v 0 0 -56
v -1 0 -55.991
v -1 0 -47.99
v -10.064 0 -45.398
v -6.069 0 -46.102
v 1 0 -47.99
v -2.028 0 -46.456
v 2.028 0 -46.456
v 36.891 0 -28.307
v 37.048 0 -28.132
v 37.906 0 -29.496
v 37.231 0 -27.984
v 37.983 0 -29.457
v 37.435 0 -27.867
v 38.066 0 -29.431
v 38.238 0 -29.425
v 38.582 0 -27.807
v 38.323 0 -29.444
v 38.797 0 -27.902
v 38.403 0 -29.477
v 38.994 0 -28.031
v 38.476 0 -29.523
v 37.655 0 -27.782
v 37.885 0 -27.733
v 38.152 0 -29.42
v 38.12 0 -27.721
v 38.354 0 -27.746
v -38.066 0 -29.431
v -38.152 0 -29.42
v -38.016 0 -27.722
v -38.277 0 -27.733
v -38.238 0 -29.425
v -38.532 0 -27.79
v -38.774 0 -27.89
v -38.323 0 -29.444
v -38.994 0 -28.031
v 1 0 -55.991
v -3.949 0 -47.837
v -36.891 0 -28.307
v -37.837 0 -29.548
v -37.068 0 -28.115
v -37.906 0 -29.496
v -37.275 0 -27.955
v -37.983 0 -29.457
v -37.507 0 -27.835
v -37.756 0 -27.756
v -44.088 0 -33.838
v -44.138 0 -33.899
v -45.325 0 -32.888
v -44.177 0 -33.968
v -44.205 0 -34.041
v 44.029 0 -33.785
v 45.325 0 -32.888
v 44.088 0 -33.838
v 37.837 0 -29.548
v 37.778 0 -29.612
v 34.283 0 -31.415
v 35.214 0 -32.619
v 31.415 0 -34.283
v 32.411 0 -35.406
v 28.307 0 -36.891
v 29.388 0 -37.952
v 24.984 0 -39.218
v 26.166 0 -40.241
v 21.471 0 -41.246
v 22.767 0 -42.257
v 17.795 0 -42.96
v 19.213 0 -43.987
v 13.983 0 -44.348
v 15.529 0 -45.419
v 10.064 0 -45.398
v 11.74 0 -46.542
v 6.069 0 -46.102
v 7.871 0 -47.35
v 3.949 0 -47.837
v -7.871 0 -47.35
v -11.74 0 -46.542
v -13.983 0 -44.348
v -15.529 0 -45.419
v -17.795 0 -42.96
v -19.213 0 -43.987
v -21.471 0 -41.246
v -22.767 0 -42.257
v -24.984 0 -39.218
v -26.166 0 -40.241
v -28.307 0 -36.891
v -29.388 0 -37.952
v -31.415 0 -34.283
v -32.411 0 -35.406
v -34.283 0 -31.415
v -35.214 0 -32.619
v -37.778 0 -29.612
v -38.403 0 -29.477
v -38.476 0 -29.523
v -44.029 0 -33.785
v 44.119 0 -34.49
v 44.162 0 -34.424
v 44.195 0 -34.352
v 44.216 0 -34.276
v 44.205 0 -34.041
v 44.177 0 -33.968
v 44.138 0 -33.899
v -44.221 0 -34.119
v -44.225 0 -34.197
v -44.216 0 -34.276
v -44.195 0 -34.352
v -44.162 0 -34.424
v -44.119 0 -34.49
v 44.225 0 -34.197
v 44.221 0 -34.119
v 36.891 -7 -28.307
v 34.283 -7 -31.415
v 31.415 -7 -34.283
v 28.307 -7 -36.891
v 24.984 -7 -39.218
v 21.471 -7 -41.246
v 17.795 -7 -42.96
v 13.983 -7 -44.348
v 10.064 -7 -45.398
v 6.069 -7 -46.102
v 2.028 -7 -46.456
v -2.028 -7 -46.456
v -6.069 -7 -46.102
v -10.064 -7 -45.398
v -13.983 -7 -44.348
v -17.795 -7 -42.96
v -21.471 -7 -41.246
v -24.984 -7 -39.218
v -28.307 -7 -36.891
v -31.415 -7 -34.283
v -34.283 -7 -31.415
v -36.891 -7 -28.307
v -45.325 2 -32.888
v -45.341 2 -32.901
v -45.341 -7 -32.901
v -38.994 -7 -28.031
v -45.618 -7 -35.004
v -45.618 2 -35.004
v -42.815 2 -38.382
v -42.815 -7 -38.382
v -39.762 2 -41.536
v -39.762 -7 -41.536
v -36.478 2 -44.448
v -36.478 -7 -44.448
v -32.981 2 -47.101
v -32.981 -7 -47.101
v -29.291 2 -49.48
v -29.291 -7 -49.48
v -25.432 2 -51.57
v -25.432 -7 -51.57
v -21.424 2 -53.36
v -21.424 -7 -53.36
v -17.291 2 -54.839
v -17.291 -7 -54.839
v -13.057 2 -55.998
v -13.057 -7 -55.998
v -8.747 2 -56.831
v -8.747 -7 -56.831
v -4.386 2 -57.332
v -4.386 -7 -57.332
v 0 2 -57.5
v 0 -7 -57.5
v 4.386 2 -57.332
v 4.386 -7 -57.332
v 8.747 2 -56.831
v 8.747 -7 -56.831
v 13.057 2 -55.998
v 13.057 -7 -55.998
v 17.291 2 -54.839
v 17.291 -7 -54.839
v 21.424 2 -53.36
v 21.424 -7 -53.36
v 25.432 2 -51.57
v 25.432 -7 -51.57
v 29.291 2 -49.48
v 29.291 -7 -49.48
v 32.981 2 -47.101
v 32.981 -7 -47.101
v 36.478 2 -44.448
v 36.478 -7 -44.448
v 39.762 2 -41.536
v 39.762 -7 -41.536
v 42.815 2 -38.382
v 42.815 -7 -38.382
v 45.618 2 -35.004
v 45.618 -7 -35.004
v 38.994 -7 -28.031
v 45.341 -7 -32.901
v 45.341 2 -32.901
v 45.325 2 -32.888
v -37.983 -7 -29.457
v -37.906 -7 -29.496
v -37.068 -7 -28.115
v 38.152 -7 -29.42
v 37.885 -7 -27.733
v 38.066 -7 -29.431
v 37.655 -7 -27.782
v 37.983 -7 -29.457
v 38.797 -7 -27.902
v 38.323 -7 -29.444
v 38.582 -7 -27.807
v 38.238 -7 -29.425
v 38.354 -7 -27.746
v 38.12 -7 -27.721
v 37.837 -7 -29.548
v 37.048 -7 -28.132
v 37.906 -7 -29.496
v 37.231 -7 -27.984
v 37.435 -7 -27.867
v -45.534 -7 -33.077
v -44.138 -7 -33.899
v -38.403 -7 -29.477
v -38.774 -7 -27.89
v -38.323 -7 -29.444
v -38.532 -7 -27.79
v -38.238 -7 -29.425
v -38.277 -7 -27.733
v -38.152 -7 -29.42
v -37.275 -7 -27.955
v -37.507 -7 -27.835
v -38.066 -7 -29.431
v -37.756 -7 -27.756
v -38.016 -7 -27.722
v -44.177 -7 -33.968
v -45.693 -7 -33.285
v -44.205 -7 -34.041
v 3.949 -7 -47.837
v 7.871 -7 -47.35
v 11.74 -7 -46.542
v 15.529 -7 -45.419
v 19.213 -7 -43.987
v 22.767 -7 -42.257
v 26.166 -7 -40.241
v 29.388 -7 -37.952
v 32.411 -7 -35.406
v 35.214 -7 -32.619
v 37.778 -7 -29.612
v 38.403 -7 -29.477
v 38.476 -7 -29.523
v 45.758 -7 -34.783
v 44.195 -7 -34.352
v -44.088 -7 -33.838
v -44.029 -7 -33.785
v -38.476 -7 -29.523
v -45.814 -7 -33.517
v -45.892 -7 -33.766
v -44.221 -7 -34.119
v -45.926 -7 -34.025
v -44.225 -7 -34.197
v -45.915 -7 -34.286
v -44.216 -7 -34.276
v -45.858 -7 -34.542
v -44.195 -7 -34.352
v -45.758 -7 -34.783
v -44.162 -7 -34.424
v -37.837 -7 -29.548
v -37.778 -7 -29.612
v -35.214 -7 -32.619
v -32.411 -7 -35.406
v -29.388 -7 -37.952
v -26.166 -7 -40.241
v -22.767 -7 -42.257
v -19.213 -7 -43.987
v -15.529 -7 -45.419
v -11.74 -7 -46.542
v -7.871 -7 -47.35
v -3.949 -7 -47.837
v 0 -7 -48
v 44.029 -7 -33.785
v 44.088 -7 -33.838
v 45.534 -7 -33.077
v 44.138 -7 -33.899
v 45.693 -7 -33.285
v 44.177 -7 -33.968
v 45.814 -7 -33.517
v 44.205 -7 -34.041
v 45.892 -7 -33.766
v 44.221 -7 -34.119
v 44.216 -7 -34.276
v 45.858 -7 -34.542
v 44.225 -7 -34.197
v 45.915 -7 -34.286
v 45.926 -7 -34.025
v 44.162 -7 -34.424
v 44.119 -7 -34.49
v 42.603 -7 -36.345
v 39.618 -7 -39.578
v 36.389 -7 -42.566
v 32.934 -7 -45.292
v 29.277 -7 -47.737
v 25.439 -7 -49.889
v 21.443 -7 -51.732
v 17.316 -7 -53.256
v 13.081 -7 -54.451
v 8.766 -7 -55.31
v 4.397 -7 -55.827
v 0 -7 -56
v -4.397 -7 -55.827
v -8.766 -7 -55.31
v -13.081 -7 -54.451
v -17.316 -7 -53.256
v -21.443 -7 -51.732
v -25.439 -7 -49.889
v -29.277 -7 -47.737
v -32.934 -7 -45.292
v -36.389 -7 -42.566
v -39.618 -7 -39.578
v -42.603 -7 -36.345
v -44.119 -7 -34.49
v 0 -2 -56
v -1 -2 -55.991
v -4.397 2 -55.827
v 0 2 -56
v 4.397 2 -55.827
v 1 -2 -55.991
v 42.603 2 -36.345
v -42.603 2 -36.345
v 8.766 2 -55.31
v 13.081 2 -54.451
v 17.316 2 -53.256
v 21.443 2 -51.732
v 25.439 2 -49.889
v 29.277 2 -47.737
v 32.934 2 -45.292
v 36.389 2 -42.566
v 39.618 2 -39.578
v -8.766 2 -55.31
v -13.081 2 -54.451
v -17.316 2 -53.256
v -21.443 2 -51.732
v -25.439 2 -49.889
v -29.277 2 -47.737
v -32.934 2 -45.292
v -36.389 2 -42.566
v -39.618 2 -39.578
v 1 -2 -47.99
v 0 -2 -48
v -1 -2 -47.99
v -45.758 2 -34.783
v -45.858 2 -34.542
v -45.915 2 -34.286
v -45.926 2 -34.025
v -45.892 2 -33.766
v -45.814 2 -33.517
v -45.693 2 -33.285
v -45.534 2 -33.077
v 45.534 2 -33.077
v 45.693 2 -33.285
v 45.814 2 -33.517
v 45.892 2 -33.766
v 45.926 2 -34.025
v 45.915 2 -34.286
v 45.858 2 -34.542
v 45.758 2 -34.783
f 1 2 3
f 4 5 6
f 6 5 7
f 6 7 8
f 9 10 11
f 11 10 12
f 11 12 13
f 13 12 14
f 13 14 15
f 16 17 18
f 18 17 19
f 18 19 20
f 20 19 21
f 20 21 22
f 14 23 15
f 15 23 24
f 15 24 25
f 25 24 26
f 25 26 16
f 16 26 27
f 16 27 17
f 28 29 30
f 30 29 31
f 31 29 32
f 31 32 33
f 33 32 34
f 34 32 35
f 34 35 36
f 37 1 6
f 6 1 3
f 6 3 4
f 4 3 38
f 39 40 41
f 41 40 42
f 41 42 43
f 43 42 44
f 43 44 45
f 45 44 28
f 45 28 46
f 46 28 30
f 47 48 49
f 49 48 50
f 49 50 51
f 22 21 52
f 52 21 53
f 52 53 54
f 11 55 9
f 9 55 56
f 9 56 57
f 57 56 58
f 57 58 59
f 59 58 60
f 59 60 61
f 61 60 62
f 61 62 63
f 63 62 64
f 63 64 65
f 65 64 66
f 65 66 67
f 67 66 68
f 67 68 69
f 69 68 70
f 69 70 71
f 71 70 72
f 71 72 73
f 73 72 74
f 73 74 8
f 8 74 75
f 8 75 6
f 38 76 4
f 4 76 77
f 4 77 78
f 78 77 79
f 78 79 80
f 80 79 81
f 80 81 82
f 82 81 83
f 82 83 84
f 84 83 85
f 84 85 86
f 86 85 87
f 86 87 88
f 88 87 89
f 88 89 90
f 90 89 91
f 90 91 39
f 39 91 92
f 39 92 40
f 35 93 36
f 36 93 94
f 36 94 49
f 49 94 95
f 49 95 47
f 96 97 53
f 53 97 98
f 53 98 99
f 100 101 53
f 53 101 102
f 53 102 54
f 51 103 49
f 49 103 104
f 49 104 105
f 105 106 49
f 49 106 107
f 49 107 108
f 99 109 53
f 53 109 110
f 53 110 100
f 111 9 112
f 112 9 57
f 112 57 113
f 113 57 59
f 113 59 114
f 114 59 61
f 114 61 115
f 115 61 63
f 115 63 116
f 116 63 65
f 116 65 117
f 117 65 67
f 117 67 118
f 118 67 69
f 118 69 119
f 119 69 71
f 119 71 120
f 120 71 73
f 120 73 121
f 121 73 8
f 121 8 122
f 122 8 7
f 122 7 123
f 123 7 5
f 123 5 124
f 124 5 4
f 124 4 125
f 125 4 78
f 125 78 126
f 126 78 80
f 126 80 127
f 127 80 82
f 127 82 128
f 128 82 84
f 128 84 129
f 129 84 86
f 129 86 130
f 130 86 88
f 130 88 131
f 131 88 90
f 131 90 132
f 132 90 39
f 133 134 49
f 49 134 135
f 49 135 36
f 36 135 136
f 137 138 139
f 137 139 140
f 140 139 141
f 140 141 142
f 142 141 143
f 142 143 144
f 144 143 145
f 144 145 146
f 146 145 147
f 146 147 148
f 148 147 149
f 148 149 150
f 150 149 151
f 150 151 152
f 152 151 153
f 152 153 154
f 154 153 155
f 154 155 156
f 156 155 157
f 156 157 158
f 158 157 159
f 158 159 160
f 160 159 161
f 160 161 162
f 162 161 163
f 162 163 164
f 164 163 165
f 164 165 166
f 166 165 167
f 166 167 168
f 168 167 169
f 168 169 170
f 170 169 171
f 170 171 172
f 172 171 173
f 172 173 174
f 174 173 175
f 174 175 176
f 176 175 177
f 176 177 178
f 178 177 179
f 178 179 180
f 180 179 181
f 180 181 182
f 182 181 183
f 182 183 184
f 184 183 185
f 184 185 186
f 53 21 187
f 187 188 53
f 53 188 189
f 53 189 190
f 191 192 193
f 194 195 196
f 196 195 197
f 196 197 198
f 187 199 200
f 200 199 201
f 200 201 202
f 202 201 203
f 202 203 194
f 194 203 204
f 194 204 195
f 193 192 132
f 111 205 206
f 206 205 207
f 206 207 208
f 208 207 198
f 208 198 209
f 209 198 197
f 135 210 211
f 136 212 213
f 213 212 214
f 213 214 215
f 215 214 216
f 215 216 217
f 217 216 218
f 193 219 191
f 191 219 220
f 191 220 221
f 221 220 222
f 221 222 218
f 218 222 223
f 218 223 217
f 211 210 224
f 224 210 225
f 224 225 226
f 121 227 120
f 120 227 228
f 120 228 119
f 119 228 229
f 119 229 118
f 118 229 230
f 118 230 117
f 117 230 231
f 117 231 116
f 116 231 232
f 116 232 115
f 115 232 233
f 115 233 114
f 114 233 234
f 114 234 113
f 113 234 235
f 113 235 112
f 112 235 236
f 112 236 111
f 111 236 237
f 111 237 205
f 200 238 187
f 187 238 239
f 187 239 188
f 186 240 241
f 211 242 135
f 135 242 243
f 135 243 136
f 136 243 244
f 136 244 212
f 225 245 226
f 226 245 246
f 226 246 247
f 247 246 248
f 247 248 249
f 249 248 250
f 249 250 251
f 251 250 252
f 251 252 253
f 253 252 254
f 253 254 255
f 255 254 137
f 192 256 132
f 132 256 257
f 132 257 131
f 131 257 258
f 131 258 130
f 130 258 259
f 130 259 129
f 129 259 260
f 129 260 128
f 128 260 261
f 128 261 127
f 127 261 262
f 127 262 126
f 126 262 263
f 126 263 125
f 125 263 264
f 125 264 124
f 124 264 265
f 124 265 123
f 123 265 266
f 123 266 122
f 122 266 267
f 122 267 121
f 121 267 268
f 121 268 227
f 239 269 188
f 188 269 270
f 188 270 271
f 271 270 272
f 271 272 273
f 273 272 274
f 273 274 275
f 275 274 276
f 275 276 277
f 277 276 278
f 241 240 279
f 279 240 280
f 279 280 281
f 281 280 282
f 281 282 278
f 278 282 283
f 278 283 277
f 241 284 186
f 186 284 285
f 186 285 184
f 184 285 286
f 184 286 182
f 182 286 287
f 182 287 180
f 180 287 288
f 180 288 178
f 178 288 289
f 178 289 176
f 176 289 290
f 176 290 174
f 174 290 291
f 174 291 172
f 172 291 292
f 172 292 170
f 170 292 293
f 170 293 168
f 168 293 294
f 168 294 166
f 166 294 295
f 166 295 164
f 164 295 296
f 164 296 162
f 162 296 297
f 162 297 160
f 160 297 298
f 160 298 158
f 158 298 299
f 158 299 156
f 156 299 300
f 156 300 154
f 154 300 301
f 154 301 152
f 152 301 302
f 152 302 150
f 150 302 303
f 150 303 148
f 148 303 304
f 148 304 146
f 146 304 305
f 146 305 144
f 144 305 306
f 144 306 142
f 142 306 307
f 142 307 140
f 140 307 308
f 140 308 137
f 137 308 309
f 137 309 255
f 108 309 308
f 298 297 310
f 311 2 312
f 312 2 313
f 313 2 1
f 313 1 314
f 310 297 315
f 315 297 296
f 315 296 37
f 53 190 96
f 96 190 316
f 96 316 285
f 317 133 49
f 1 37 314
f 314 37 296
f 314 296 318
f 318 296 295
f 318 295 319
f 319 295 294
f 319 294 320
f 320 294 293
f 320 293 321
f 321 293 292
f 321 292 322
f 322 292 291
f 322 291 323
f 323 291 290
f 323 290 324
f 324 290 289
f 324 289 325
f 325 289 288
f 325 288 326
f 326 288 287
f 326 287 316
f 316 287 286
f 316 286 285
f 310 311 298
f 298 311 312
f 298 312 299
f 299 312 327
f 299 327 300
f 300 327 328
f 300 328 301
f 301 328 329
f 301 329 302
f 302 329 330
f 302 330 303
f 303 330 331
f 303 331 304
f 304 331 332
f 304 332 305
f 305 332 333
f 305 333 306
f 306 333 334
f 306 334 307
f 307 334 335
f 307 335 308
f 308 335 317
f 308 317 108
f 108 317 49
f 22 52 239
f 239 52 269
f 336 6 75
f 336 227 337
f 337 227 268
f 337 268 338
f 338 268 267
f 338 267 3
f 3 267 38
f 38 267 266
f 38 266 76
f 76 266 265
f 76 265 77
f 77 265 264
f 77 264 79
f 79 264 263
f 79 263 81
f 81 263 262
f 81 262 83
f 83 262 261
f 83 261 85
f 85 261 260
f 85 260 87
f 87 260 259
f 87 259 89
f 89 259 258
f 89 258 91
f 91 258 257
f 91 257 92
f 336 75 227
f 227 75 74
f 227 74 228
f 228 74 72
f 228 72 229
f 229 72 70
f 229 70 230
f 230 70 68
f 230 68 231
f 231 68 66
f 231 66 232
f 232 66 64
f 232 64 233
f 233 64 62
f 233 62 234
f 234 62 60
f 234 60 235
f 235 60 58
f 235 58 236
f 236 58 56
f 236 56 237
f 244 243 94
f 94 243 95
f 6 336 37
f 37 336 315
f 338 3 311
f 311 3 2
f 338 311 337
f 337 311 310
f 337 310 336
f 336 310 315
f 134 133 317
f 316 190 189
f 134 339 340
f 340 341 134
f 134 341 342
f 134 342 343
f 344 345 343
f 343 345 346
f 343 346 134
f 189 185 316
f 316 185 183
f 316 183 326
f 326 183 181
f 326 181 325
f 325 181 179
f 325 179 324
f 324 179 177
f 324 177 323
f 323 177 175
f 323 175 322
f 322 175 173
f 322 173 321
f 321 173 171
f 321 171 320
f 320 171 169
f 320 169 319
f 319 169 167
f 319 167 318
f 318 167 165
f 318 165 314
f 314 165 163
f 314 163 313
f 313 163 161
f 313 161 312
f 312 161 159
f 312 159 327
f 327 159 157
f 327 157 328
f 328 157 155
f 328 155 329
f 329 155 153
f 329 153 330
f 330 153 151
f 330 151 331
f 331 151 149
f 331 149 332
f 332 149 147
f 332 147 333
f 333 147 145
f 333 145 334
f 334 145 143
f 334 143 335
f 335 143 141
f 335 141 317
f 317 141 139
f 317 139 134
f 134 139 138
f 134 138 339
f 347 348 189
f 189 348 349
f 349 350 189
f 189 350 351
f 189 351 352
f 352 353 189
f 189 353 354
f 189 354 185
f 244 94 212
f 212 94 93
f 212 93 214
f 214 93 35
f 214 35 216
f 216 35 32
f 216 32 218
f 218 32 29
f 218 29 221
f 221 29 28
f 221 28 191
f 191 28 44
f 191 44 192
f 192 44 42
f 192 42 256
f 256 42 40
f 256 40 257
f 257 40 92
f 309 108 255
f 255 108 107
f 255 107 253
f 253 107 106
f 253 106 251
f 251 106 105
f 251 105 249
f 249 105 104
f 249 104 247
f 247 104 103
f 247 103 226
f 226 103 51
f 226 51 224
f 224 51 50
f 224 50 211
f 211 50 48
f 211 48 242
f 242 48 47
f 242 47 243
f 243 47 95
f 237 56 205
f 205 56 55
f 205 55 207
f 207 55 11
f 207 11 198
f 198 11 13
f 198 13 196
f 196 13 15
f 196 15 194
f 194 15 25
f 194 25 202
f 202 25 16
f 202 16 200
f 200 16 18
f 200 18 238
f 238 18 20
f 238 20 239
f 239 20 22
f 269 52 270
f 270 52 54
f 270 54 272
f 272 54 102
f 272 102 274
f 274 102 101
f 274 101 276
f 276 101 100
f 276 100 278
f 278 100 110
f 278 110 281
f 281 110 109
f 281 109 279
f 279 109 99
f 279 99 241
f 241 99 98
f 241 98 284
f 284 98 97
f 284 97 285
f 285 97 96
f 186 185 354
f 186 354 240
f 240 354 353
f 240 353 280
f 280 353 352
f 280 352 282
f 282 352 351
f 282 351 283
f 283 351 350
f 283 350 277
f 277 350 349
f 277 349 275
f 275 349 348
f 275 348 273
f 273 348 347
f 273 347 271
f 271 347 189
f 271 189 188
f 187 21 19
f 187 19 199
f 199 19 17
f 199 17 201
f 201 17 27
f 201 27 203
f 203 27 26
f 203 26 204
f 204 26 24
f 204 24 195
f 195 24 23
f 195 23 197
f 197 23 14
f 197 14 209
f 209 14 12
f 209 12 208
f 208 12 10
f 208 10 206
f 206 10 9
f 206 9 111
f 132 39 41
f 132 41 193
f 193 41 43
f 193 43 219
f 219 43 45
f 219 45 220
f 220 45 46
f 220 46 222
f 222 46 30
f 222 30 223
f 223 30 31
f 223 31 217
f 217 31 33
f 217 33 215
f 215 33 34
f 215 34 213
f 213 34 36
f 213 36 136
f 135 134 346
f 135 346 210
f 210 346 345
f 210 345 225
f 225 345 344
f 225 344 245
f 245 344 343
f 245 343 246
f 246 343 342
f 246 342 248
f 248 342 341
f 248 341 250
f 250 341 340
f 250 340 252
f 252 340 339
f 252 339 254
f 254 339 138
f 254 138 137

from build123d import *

# Parameters (mm, degrees)
BOSS_EXTRUDE1_DEPTH = 7
SKETCH2_W           = 2
SKETCH2_H           = 9.756485423
BOSS_EXTRUDE2_DEPTH = 2
BOSS_EXTRUDE3_DEPTH = 2
FILLET1_R           = 0.5
FILLET2_R           = 1.5


with BuildPart() as part:
    # Sketch1 → Boss-Extrude1 (new body)
    with BuildSketch(Plane(origin=(0, 0, 0), x_dir=(1, 0, 0), z_dir=(0, 1, 0))):
        with BuildLine():
            Line((37.784873439, 27.102644506), (46.515434438, 33.801839581))
            ThreePointArc((46.515434438, 33.801839581), (0, 57.5), (-46.515434438, 33.801839581))
            Line((-46.515434438, 33.801839581), (-37.784873439, 27.102644506))
            ThreePointArc((-37.784873439, 27.102644506), (0, 46.5), (37.784873439, 27.102644506))
        make_face()
        with BuildLine():
            Line((-38.080960334, 29.220548592), (-44.427787056, 34.090640024))
            ThreePointArc((-44.427787056, 34.090640024), (0, 56), (44.427787056, 34.090640024))
            Line((44.427787056, 34.090640024), (38.080960334, 29.220548592))
            ThreePointArc((38.080960334, 29.220548592), (0, 48), (-38.080960334, 29.220548592))
        make_face(mode=Mode.SUBTRACT)
    extrude(amount=-BOSS_EXTRUDE1_DEPTH)

    # Sketch2 → Boss-Extrude2 (add)
    with BuildSketch(Plane(origin=(0, 0, 0), x_dir=(1, 0, 0), z_dir=(0, 1, 0))):
        with Locations((0, 51.881238044)):
            Rectangle(SKETCH2_W, SKETCH2_H)
    extrude(amount=-BOSS_EXTRUDE2_DEPTH)

    # Sketch3 → Boss-Extrude3 (add)
    with BuildSketch(Plane(origin=(0, 0, 0), x_dir=(1, 0, 0), z_dir=(0, 1, 0))):
        with BuildLine():
            Line((45.324988438, 32.888378237), (46.515434438, 33.801839581))
            ThreePointArc((46.515434438, 33.801839581), (0, 57.5), (-46.515434438, 33.801839581))
            Line((-46.515434438, 33.801839581), (-45.324988438, 32.888378237))
            ThreePointArc((-45.324988438, 32.888378237), (0, 56), (45.324988438, 32.888378237))
        make_face()
    extrude(amount=BOSS_EXTRUDE3_DEPTH)

    # Fillet1
    fillet1_edges = [part.edges().sort_by_distance(p)[0] for p in [
        (-38.080960334, -3.5, -29.220548592),
        (-44.427787056, -3.5, -34.090640024),
        (38.080960334, -3.5, -29.220548592),
        (44.427787056, -3.5, -34.090640024),
    ]]
    fillet(fillet1_edges, radius=FILLET1_R)

    # Fillet2
    fillet2_edges = [part.edges().sort_by_distance(p)[0] for p in [
        (46.515434438, -2.5, -33.801839581),
        (37.784873439, -3.5, -27.102644506),
        (-37.784873439, -3.5, -27.102644506),
        (-46.515434438, -2.5, -33.801839581),
    ]]
    fillet(fillet2_edges, radius=FILLET2_R)


solid = part.part
